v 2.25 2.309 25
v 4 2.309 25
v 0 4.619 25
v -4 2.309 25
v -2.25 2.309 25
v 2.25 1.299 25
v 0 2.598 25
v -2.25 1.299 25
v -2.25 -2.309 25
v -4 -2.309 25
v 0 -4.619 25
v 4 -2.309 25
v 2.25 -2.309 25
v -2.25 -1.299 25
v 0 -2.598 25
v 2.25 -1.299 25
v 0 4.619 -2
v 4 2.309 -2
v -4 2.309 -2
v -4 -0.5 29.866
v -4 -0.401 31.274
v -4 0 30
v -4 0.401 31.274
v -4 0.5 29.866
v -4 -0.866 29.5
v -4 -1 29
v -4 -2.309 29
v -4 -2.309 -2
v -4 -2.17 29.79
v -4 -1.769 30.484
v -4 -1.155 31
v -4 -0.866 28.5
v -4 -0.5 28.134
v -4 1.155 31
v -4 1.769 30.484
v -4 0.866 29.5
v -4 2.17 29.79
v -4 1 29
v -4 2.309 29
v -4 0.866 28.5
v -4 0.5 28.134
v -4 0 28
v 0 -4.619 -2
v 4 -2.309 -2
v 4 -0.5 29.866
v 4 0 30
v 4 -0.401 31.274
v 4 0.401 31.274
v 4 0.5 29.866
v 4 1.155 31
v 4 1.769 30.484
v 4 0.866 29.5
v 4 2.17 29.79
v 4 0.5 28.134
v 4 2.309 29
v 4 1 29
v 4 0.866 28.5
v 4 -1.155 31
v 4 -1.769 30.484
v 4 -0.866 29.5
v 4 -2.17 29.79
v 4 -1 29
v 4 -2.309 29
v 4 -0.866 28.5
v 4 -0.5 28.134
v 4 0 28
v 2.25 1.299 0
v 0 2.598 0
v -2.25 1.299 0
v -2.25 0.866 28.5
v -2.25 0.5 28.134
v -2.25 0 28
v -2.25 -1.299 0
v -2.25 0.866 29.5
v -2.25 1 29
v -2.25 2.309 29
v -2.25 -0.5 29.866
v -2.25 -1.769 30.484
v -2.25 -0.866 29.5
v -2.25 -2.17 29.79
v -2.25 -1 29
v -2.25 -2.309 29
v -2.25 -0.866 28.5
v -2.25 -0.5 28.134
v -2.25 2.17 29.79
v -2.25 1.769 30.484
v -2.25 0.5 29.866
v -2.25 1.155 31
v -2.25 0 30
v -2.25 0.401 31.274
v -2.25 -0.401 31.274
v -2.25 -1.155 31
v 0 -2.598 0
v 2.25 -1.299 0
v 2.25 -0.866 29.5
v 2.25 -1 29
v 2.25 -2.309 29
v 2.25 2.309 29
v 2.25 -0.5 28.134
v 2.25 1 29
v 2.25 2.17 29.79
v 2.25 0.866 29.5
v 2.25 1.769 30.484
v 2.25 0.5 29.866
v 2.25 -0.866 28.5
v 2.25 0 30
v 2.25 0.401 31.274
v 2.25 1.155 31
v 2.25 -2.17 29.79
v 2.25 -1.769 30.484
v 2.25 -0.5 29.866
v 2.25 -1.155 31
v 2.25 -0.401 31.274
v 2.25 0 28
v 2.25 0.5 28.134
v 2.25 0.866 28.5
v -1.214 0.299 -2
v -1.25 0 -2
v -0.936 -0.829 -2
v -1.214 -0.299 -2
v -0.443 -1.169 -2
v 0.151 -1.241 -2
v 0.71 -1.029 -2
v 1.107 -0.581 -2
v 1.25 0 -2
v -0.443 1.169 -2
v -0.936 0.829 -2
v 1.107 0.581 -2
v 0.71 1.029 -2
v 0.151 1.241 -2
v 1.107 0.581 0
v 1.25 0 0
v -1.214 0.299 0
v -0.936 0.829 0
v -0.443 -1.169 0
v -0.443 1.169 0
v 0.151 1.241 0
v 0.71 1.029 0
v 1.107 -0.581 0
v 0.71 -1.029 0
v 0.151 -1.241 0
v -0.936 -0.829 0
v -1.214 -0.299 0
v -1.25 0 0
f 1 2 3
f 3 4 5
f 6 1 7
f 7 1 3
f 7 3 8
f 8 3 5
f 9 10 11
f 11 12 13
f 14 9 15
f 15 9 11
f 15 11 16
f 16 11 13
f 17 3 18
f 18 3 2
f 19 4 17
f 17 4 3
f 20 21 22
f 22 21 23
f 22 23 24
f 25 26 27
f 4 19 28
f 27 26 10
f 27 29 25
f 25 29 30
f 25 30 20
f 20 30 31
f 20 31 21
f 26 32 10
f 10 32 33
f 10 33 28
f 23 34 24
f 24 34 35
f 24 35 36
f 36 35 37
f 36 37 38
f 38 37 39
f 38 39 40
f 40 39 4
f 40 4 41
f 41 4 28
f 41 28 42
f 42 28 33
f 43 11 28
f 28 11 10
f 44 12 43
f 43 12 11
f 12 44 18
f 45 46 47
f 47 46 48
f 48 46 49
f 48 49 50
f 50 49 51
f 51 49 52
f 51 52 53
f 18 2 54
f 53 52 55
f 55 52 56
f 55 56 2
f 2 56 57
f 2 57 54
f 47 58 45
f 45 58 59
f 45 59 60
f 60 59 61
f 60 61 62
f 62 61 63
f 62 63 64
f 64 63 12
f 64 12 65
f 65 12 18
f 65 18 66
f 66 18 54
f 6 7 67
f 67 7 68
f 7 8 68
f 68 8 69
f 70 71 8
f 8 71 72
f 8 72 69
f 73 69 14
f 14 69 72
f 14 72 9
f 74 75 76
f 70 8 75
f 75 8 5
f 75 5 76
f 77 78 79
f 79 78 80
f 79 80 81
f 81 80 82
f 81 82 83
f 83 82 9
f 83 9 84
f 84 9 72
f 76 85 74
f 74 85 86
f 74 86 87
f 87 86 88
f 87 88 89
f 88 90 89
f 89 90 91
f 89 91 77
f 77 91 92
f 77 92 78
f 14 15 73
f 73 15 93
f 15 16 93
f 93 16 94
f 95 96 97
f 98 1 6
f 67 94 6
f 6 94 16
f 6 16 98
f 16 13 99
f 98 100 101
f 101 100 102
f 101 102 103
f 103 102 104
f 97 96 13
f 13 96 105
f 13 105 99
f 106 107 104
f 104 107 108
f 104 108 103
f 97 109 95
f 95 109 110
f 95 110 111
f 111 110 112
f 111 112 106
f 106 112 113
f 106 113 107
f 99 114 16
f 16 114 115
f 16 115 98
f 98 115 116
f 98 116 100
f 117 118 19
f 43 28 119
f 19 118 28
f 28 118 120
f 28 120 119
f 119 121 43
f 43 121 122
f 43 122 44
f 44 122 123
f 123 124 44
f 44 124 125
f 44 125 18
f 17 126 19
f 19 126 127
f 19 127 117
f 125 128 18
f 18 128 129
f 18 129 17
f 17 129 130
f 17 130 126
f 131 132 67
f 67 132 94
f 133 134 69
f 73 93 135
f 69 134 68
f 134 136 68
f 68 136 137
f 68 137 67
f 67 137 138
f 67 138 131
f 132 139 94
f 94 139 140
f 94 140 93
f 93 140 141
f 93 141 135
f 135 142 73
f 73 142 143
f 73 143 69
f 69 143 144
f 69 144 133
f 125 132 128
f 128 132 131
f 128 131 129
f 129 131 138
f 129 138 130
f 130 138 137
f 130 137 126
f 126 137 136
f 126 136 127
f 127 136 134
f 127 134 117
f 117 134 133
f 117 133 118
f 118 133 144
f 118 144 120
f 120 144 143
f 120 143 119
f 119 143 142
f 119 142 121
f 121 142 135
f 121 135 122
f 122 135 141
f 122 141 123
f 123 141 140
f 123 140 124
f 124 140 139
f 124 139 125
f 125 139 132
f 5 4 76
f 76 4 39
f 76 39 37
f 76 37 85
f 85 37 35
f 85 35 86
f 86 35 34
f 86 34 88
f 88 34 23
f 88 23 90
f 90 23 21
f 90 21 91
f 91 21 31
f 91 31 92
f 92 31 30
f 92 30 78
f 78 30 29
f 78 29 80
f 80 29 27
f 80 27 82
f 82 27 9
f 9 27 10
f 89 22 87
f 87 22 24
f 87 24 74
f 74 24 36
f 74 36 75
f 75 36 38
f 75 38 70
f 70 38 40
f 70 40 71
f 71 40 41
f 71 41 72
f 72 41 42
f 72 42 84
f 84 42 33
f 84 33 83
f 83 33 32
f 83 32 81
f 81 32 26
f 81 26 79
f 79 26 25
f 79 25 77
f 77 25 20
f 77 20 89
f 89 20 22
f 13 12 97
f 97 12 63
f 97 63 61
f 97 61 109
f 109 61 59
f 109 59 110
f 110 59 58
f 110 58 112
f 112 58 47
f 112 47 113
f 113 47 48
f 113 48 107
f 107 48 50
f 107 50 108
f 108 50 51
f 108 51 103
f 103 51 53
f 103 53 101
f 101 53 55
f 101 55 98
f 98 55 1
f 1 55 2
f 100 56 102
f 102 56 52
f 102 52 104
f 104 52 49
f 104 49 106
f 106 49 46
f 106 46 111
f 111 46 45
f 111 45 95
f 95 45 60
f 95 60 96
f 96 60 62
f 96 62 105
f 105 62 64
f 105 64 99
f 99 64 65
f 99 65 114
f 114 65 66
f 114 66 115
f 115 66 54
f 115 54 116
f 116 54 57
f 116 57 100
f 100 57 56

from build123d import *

# Parameters (mm, degrees)
EXTRUDE_1_DEPTH = 25
SKETCH_2_R      = 1.25
EXTRUDE_2_DEPTH = 2
SKETCH_3_R      = 1
EXTRUDE_3_DEPTH = 1.75
SKETCH_4_R      = 1
EXTRUDE_4_DEPTH = 1.75


with BuildPart() as part:
    # 스케치1 → 보스-돌출1 (new body)
    with BuildSketch(Plane.XY):
        Polygon((0, 4.618802154), (-4, 2.309401077), (-4, -2.309401077), (0, -4.618802154), (4, -2.309401077), (4, 2.309401077), align=None)
        Polygon((0, 2.598076211), (-2.25, 1.299038106), (-2.25, -1.299038106), (0, -2.598076211), (2.25, -1.299038106), (2.25, 1.299038106), align=None, mode=Mode.SUBTRACT)
    extrude(amount=EXTRUDE_1_DEPTH)

    # 스케치2 → 보스-돌출2 (add)
    with BuildSketch(Plane(origin=(0, 0, 0), x_dir=(-1, 0, 0), z_dir=(0, 0, -1))):
        Polygon((0, 4.618802154), (-4, 2.309401077), (-4, -2.309401077), (0, -4.618802154), (4, -2.309401077), (4, 2.309401077), align=None)
        Circle(SKETCH_2_R, mode=Mode.SUBTRACT)
    extrude(amount=EXTRUDE_2_DEPTH)

    # 스케치3 → 보스-돌출3 (add)
    with BuildSketch(Plane.ZY.offset(4)):
        with BuildLine():
            Line((25, 2.309401077), (29, 2.309401077))
            ThreePointArc((29, 2.309401077), (31.309401077, 0), (29, -2.309401077))
            Line((29, -2.309401077), (25, -2.309401077))
            Line((25, -2.309401077), (25, 2.309401077))
        make_face()
        with Locations((29, 0)):
            Circle(SKETCH_3_R, mode=Mode.SUBTRACT)
    extrude(amount=-EXTRUDE_3_DEPTH)

    # 스케치4 → 보스-돌출4 (add)
    with BuildSketch(Plane(origin=(4, 0, 0), x_dir=(0, 0, -1), z_dir=(1, 0, 0))):
        with BuildLine():
            Line((-29, 2.309401077), (-25, 2.309401077))
            Line((-25, 2.309401077), (-25, -2.309401077))
            Line((-25, -2.309401077), (-29, -2.309401077))
            ThreePointArc((-29, -2.309401077), (-31.309401077, 0), (-29, 2.309401077))
        make_face()
        with Locations((-29, 0)):
            Circle(SKETCH_4_R, mode=Mode.SUBTRACT)
    extrude(amount=-EXTRUDE_4_DEPTH)


solid = part.part
